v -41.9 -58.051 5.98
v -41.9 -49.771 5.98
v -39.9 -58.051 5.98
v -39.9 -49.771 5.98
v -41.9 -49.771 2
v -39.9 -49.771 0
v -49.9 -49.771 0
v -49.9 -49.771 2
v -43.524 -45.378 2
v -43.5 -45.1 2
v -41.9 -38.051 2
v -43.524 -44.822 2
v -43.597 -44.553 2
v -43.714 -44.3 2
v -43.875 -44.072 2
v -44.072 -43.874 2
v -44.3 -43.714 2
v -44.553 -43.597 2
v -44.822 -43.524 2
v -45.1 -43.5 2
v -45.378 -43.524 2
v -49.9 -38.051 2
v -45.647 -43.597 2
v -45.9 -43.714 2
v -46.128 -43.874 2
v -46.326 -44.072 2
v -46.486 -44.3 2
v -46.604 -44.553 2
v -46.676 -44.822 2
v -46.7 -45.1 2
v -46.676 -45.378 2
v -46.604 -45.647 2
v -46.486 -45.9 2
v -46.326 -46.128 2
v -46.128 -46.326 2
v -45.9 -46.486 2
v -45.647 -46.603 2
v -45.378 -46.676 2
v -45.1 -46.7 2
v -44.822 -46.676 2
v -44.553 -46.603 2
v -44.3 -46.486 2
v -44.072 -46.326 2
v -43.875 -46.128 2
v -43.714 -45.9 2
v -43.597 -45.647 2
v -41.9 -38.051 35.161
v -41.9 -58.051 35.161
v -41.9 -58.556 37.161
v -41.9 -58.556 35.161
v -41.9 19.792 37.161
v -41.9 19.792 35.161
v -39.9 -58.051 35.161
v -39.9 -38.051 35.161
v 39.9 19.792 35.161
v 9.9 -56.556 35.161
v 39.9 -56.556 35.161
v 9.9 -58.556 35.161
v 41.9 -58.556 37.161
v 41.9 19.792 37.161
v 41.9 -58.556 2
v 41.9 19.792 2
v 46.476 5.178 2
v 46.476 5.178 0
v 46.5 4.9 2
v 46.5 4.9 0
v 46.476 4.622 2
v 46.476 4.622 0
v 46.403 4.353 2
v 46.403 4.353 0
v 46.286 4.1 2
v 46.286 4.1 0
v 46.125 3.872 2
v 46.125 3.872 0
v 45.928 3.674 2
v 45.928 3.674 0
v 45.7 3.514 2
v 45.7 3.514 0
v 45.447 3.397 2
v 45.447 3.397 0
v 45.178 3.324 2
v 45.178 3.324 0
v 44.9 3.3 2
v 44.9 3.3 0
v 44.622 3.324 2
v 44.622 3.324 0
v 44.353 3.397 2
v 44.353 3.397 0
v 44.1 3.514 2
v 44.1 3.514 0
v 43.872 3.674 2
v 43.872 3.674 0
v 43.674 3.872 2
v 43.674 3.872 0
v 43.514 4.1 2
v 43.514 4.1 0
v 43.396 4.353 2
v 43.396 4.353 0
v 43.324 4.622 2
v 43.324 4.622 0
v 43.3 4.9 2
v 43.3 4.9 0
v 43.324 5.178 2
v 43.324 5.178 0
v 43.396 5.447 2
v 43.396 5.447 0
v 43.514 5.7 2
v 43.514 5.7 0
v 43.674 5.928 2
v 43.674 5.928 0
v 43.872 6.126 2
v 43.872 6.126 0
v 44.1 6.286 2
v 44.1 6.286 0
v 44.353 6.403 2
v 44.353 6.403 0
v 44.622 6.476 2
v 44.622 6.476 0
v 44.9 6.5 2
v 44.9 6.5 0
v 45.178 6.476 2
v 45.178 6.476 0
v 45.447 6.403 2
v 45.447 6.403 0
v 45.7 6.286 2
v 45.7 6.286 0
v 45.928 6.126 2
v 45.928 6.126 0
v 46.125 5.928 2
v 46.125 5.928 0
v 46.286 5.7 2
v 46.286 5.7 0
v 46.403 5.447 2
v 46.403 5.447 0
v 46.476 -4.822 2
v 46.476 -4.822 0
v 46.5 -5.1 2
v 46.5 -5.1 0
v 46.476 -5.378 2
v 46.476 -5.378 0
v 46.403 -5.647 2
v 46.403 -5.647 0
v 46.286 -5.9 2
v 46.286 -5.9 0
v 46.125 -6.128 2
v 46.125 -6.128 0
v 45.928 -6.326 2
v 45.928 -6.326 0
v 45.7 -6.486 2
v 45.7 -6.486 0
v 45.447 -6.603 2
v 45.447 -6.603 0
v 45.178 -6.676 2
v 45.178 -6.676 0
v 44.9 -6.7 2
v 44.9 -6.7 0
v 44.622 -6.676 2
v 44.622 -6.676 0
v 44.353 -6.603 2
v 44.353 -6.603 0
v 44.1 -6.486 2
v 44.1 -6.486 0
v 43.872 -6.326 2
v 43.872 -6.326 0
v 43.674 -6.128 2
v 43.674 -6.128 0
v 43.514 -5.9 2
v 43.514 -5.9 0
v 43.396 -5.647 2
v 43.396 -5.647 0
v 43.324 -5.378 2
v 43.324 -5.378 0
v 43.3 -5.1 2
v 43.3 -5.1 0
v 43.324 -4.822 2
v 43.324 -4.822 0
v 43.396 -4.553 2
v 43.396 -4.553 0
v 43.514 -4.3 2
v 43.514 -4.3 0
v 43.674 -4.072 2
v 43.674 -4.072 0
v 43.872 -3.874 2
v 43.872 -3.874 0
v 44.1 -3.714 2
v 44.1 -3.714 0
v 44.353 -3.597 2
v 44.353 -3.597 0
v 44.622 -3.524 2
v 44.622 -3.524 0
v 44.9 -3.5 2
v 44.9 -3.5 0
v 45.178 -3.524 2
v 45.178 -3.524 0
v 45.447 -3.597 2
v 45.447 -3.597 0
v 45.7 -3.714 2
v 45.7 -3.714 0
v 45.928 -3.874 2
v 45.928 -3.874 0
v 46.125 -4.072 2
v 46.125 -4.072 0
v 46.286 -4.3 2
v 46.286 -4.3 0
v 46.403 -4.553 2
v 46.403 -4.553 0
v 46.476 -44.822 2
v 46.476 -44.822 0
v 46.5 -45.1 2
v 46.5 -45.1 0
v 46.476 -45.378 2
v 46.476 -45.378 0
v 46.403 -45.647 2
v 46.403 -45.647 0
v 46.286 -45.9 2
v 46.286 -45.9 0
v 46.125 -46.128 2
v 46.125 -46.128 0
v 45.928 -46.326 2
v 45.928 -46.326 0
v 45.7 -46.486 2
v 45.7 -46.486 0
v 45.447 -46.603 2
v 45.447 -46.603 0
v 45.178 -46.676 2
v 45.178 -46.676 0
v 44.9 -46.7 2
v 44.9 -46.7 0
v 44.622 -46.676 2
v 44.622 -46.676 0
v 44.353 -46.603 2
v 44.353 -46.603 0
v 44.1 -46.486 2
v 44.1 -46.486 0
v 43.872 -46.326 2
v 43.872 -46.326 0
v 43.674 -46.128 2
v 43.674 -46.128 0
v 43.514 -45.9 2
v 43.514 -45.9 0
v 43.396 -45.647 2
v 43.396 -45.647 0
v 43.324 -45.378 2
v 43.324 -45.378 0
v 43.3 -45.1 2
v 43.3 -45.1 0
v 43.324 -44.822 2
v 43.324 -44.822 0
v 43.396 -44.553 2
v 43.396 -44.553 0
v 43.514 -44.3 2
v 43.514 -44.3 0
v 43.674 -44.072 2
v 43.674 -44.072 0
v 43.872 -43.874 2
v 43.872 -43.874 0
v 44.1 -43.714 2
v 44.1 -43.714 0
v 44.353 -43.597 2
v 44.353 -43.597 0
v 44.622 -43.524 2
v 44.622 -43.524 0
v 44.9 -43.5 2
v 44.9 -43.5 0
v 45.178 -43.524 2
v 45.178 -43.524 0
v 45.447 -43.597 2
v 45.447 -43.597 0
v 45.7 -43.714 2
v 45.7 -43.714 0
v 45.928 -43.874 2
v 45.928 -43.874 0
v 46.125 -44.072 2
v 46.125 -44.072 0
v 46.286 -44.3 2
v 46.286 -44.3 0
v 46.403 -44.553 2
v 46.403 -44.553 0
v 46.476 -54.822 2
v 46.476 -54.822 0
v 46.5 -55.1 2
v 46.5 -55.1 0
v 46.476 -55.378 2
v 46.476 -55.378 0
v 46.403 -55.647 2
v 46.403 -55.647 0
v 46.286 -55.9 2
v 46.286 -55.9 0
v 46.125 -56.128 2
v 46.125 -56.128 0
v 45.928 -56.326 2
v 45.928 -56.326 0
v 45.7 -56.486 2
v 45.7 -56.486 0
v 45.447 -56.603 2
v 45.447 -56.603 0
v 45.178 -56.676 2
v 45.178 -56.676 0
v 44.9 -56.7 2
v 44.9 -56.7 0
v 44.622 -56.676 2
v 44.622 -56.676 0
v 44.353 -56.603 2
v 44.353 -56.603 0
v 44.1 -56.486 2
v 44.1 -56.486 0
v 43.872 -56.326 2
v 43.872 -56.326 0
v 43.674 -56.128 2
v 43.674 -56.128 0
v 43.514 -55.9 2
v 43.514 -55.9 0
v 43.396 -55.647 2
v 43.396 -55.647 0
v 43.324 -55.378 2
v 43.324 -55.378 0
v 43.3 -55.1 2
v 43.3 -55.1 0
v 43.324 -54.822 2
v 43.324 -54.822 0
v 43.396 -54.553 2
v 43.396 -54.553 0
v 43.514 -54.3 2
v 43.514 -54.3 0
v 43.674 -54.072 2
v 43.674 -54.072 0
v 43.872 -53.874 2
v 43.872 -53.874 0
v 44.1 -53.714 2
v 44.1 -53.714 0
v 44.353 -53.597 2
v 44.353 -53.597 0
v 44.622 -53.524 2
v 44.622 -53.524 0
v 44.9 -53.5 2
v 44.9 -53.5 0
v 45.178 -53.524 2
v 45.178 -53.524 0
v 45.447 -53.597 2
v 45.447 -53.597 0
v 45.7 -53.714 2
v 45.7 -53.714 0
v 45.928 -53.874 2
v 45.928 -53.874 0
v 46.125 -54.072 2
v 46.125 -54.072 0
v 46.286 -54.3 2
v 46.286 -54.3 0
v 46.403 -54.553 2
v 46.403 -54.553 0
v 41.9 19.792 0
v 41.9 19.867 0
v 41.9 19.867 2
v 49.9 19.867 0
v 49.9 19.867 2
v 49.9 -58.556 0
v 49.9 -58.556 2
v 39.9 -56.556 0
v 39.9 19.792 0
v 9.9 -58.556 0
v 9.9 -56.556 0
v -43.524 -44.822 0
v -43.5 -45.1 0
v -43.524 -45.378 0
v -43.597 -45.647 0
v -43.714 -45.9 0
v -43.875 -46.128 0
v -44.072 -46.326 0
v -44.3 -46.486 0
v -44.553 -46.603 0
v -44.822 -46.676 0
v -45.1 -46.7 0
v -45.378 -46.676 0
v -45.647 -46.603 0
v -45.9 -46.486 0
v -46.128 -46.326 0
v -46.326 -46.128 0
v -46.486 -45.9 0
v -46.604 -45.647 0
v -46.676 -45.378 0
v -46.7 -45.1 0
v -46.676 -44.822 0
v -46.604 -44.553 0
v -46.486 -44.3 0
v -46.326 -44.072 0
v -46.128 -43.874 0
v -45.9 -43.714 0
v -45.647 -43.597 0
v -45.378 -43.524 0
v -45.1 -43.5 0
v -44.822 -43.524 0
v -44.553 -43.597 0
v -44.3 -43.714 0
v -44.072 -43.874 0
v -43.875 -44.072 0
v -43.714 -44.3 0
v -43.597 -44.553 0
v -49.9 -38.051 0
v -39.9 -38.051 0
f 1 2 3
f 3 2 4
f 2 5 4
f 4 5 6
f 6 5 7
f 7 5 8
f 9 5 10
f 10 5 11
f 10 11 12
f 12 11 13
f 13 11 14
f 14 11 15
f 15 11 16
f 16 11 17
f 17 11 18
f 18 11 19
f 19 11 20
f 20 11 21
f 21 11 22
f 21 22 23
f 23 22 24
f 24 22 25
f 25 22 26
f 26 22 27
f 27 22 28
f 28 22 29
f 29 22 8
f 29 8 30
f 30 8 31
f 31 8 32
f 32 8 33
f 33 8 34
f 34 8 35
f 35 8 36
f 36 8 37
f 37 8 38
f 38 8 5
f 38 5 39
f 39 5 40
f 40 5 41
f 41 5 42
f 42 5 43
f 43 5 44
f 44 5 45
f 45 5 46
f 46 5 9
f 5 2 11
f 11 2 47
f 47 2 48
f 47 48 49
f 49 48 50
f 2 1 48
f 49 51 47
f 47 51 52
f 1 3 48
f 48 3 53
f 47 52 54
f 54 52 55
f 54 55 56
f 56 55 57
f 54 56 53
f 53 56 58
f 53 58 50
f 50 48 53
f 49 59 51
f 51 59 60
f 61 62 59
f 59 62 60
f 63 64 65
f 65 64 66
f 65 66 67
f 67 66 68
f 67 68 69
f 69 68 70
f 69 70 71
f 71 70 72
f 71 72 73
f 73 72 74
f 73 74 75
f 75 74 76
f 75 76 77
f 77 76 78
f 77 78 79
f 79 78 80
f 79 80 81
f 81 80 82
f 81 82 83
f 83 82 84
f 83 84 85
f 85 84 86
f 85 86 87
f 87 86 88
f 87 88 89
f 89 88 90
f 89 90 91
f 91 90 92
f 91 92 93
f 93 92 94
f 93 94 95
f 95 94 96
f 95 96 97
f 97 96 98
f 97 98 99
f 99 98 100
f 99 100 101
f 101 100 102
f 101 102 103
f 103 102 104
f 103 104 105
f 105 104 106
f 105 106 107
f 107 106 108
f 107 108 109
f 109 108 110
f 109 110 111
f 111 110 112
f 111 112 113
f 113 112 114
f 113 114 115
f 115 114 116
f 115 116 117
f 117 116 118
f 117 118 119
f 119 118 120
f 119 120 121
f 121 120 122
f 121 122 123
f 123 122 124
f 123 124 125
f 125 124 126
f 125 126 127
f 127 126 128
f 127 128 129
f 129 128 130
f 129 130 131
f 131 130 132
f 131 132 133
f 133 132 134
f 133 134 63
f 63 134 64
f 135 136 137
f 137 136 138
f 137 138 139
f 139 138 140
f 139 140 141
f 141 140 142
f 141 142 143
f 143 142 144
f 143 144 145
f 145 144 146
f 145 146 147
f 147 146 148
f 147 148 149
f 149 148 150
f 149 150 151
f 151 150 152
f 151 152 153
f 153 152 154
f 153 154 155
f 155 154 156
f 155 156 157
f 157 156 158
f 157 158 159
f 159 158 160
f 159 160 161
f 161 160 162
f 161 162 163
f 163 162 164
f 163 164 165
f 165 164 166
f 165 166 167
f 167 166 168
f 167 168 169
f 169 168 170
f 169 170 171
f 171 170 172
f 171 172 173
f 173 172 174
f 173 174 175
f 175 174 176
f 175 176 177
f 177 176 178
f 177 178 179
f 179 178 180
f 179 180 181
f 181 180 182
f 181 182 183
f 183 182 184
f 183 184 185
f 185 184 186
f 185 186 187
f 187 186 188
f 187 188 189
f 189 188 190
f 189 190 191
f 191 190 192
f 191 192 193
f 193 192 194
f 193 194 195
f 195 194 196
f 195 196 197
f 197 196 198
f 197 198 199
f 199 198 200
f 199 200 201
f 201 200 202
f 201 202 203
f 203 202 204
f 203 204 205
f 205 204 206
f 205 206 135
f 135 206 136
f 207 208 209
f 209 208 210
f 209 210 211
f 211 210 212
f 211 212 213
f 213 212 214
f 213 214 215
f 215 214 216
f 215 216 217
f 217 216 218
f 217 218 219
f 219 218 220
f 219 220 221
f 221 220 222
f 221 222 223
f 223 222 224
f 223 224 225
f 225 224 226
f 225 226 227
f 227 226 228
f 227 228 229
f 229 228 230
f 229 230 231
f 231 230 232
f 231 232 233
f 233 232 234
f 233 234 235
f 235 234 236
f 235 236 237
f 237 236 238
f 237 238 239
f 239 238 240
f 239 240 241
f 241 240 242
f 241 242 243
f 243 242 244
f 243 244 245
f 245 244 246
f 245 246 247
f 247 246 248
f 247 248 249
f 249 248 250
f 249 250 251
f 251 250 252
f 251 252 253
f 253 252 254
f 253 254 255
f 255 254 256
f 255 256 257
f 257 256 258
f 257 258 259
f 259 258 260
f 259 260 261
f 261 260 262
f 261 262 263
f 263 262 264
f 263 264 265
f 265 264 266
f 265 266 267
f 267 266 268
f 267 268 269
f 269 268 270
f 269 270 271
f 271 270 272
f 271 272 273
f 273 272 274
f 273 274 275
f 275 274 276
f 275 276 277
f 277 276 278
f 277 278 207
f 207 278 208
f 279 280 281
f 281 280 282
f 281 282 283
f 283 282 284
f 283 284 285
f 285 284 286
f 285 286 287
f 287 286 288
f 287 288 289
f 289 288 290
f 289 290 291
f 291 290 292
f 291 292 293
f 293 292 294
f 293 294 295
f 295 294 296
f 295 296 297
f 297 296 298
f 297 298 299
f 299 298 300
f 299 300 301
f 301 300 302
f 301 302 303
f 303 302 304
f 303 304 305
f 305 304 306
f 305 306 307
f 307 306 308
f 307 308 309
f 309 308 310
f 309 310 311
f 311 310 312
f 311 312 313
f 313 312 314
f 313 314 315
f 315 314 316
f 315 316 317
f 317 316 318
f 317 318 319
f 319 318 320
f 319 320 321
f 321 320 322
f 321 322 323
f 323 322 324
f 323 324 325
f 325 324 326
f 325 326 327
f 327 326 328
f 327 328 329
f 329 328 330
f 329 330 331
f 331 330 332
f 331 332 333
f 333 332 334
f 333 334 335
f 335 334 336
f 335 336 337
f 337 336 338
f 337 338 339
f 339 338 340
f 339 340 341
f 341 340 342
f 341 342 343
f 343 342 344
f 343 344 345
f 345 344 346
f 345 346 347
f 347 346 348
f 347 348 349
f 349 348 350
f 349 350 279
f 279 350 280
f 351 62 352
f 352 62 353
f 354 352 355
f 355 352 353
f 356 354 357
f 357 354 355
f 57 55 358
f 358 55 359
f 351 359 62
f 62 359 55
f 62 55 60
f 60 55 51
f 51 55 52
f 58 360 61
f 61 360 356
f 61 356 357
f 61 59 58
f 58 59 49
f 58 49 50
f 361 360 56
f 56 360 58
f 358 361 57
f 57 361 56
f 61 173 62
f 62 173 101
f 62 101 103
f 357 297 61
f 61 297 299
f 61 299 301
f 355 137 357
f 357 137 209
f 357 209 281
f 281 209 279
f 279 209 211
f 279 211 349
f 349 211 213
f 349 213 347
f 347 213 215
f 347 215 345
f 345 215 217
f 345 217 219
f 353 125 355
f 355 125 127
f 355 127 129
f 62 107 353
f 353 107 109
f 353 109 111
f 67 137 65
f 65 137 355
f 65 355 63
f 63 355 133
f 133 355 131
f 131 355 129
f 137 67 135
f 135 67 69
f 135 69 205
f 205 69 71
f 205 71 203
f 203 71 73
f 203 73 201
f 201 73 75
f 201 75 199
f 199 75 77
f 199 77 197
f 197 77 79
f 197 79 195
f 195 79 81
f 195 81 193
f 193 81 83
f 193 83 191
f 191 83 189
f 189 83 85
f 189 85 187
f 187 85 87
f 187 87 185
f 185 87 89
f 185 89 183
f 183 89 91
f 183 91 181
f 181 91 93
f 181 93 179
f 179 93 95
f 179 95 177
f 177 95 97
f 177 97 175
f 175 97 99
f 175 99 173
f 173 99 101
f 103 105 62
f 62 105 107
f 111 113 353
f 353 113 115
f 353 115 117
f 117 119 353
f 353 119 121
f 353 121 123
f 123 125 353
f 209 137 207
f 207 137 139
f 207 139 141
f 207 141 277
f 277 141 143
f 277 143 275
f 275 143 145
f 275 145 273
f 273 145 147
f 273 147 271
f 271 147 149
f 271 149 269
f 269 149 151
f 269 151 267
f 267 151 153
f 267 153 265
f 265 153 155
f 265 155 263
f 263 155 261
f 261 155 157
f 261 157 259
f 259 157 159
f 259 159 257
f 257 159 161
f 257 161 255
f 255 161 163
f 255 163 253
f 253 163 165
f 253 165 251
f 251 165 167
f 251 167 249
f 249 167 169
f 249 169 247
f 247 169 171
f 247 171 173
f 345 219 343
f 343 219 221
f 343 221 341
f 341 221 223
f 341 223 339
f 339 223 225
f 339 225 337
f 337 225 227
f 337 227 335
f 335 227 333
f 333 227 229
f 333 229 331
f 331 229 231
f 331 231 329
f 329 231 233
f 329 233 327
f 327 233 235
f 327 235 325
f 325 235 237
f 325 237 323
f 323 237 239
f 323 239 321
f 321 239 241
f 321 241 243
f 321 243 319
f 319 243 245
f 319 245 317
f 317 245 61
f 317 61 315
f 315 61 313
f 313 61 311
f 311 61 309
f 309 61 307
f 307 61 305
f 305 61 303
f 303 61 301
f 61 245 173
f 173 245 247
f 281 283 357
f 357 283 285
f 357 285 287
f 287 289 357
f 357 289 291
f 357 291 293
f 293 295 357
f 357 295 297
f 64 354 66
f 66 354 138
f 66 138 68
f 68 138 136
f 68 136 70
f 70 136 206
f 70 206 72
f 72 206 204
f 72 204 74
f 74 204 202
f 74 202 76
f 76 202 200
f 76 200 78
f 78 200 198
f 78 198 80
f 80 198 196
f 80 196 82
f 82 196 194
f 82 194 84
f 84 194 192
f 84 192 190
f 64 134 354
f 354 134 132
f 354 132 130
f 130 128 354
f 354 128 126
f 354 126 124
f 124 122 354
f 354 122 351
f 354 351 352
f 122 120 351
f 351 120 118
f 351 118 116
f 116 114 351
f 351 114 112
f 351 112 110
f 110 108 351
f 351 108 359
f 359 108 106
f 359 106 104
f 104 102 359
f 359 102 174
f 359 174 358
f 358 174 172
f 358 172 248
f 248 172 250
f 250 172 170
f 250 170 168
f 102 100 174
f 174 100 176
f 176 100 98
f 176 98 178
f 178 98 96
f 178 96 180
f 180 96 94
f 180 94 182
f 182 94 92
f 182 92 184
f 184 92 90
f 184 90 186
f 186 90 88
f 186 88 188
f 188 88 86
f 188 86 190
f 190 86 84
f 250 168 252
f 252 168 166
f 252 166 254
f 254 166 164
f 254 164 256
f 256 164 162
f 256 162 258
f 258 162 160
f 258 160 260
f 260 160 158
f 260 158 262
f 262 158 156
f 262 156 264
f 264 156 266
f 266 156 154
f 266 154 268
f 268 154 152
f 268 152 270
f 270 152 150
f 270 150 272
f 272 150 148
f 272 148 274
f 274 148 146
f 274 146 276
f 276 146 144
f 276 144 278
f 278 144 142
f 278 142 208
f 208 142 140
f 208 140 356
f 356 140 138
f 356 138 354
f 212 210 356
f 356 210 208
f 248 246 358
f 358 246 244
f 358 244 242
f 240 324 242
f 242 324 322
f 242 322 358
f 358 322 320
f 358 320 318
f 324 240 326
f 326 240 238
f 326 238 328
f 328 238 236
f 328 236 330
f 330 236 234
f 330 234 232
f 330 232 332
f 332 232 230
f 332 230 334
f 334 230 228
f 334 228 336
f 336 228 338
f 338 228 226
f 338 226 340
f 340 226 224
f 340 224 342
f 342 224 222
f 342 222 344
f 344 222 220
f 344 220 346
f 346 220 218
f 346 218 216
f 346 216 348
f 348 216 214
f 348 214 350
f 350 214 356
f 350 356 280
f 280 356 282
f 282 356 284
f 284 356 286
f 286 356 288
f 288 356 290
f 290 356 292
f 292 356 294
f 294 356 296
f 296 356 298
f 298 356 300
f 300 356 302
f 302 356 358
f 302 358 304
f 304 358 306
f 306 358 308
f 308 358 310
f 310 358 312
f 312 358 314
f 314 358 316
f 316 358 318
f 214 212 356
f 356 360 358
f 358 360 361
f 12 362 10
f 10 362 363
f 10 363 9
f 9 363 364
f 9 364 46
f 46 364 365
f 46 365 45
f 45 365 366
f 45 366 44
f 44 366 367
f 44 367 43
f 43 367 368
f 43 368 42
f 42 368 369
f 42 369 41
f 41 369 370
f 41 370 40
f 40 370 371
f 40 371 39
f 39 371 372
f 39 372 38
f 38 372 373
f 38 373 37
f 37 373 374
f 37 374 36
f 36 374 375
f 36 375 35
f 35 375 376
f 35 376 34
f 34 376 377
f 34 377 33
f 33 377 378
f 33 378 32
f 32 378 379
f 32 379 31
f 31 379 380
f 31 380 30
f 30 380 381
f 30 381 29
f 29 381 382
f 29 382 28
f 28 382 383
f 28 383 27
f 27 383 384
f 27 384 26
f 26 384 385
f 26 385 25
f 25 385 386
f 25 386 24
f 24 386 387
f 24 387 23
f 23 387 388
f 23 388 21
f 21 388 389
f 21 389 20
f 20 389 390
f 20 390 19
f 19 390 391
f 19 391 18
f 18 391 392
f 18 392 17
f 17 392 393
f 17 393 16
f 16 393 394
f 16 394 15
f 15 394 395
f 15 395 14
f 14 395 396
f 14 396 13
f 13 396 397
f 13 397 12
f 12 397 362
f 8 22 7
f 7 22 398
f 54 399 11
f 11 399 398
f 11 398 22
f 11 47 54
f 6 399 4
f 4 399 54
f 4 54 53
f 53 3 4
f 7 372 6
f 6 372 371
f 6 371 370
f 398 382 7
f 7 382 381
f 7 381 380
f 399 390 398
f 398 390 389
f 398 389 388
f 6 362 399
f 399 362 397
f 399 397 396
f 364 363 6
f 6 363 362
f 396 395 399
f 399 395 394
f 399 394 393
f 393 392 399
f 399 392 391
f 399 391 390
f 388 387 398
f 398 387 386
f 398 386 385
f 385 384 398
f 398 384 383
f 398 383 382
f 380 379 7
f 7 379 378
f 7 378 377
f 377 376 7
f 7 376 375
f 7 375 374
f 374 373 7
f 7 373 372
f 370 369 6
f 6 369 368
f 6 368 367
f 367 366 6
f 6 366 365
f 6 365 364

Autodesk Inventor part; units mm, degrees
ref_plane "YZ Plane" through (0, 0, 0) normal (1, 0, 0) x (0, 1, 0)
ref_plane "XZ Plane" through (0, 0, 0) normal (0, 1, 0) x (-1, 0, 0)
ref_plane "Work Plane1" through (0, 0, 0) normal (0, 0, 1) x (1, 0, 0)
ref_plane "Work Plane2" through (0, 0, 0) normal (0, 0, 1) x (1, 0, 0)
sketch "Sketch2" plane through (0, 0, 0) normal (0, 0, 1) x (1, 0, 0)
  circle A0 centre (44.9, -55.1) radius 1.6 construction
  circle A1 centre (44.9, -45.1) radius 1.6 construction
  line L0 (49.9, -97.9) -> (49.9, 41.0746) construction
  line L1 (-49.9, -35.1) -> (-49.9, -97.9) construction
  circle A2 centre (-45.1, -45.1) radius 1.6 construction
  circle A3 centre (-45.1, -55.1) radius 1.4 construction
  line L2 (-2.8791, -35.1) -> (-48.921, -35.1) construction
  circle A4 centre (44.9, -5.1) radius 1.6 construction
  circle A5 centre (44.9, 4.9) radius 1.6 construction
  line L3 (49.9, -58.5557) -> (41.9, -58.5557) construction
  line L4 (41.9, -58.5557) -> (41.9, 19.8666) construction
  line L5 (41.9, 19.8666) -> (49.9, 19.8666) construction
  line L6 (49.9, 19.8666) -> (49.9, -58.5557) construction
  line L7 (41.9, -58.5557) -> (49.9, -58.5557)
  line L8 (49.9, -58.5557) -> (49.9, 19.8666)
  line L9 (49.9, 19.8666) -> (41.9, 19.8666)
  line L10 (41.9, 19.8666) -> (41.9, -58.5557)
  line L11 (41.9, 19.8666) -> (49.9, 36.639)
  line L12 (49.9, 19.8666) -> (49.9, 36.639)
  line L13 (60.4304, 64.9211) -> (17.3793, -25.3374) projected
  line L14 (-49.9, -58.0504) -> (-41.9, -58.0504)
  line L15 (-41.9, -58.0504) -> (-41.9, -38.0504)
  line L16 (-41.9, -38.0504) -> (-49.9, -38.0504)
  line L17 (-49.9, -38.0504) -> (-49.9, -58.0504)
  line L18 (-41.9, -58.0504) -> (-39.9, -58.0504)
  line L19 (-39.9, -58.0504) -> (-39.9, -38.0504)
  line L20 (-39.9, -38.0504) -> (-41.9, -38.0504)
  line L21 (-41.9, -38.0504) -> (-41.9, -58.0504)
  line L22 (41.9, -58.5557) -> (39.9, -58.5557)
  line L23 (39.9, -58.5557) -> (39.9, 19.7918)
  line L24 (39.9, 19.7918) -> (41.9, 19.7918)
  line L25 (41.9, 19.7918) -> (41.9, -58.5557)
  circle A6 centre (-45.1, -55.1) radius 1.4
  circle A7 centre (-45.1, -45.1) radius 1.6
  circle A8 centre (44.9, -55.1) radius 1.6
  circle A9 centre (44.9, -45.1) radius 1.6
  circle A10 centre (44.9, -5.1) radius 1.6
  circle A11 centre (44.9, 4.9) radius 1.6
  line L26 (39.9, -58.5557) -> (9.9, -58.5557)
  line L27 (9.9, -58.5557) -> (9.9, -56.5557)
  line L28 (9.9, -56.5557) -> (39.9, -56.5557)
  line L29 (39.9, -56.5557) -> (39.9, -58.5557)
  point P0 (0, 0)
  dimension "d0" = 8
  dimension "d1" = 8
  dimension "d2" = 20
  dimension "d3" = 2
  dimension "d4" = 2
  dimension "d7" = 30
  dimension "d8" = 2
extrude "Extrusion1" add sketch "Sketch2" along normal blind 2 contours L10 L9 L8 L7 | L22 L23 L24 L10 | L26 L27 L28 L23 | L17 L16 L15 L14 | L15 L20 L19 L18
sketch "Sketch3" plane through (0, 0, 2) normal (0, 0, 1) x (1, 0, 0)
  line L0 (39.9, 19.7918) -> (39.9, -56.5557) projected
  circle A0 centre (44.9, 4.9) radius 1.6 projected
  circle A1 centre (44.9, -5.1) radius 1.6 projected
  circle A2 centre (44.9, -45.1) radius 1.6 projected
  circle A3 centre (44.9, -55.1) radius 1.6 projected
  line L1 (39.9, -56.5557) -> (9.9, -56.5557) projected
  line L2 (9.9, -56.5557) -> (9.9, -58.5557) projected
  line L3 (9.9, -58.5557) -> (49.9, -58.5557) projected
  line L4 (49.9, -58.5557) -> (49.9, 19.8666) projected
  line L5 (49.9, 19.8666) -> (41.9, 19.8666) projected
  line L6 (41.9, 19.8666) -> (41.9, 19.7918) projected
  line L7 (41.9, 19.7918) -> (39.9, 19.7918) projected
  line L8 (39.9, 19.7918) -> (39.9, -56.5557) projected
  line L9 (39.9, 19.7918) -> (39.9, -56.5557) projected
  line L10 (9.9, -58.5557) -> (49.9, -58.5557) projected
  line L11 (39.9, 19.7918) -> (41.9, 19.7918)
  line L12 (41.9, 19.7918) -> (41.9, -58.5557)
  line L13 (41.9, -58.5557) -> (39.9, -58.5557)
  line L14 (39.9, -58.5557) -> (39.9, 19.7918)
  line L15 (39.9, -56.5557) -> (9.9, -56.5557) projected
  line L16 (9.9, -58.5557) -> (39.9, -58.5557)
  line L17 (39.9, -58.5557) -> (39.9, -56.5557)
  line L18 (39.9, -56.5557) -> (9.9, -56.5557)
  line L19 (9.9, -56.5557) -> (9.9, -58.5557)
  line L20 (-39.9, -58.0504) -> (-39.9, -38.0504) projected
  line L21 (-49.9, -58.0504) -> (-39.9, -58.0504) projected
  line L22 (-39.9, -38.0504) -> (-41.9, -38.0504)
  line L23 (-41.9, -38.0504) -> (-41.9, -58.0504)
  line L24 (-41.9, -58.0504) -> (-39.9, -58.0504)
  line L25 (-39.9, -58.0504) -> (-39.9, -38.0504)
  point P0 (0, 0)
  dimension "d9" = 2
ref_plane "Work Plane3" through (-48.921, -35.1, 35.161) normal (0, 0, 1) x (1, 0, 0)
extrude "Extrusion2" add sketch "Sketch3" along normal up to surface (33.161 mm away) contours L7 L12 L3 L14 L0 | L14 L3 L2 L1 | L21 L23 L22 L20
sketch "Sketch5" plane through (9.9, -58.5557, 35.161) normal (0, 0, 1) x (1, 0, 0)
  line L0 (0, 0) -> (0, 2) projected
  line L1 (32, 0) -> (0, 0) projected
  line L2 (32, 78.3475) -> (32, 0) projected
  line L3 (30, 78.3475) -> (32, 78.3475) projected
  line L4 (30, 2) -> (30, 78.3475) projected
  line L5 (0, 2) -> (30, 2) projected
  line L6 (-49.8, 20.5053) -> (-49.8, 0.5053) projected
  line L7 (-51.8, 20.5053) -> (-49.8, 20.5053) projected
  line L8 (-51.8, 0.5053) -> (-51.8, 20.5053) projected
  line L9 (-49.8, 0.5053) -> (-51.8, 0.5053) projected
  line L10 (32, 78.3475) -> (-51.8, 78.3475)
  line L11 (-51.8, 78.3475) -> (-51.8, 0.5053)
  line L12 (-51.8, 0.5053) -> (32, 0.5053)
  line L13 (32, 0.5053) -> (32, 78.3475)
  line L14 (32, 78.3475) -> (32, 0) projected
  line L15 (32, 0) -> (-51.8, 0)
  line L16 (-51.8, 0) -> (-51.8, 0.5053)
  line L17 (-51.8, 0.5053) -> (32, 0.5053)
  line L18 (32, 0.5053) -> (32, 0)
  point P0 (-9.9, 58.5557)
extrude "Extrusion3" add sketch "Sketch5" along normal blind 2
sketch "Sketch6" plane through (-41.9, -58.0504, 2) normal (-1, 0, 0) x (0, 0, 1)
  line L0 (0, 20) -> (33.161, 20) projected
  line L1 (0, 0) -> (0, 20) projected
  line L2 (0, 0) -> (33.161, 0) projected
  line L3 (33.161, 0) -> (33.161, -0.5053) projected
  line L4 (33.161, -0.5053) -> (35.161, -0.5053) projected
  line L5 (35.161, 77.8423) -> (35.161, -0.5053) projected
  line L6 (33.161, 77.8423) -> (35.161, 77.8423) projected
  line L7 (33.161, 77.8423) -> (33.161, 20) projected
  line L8 (-2, 7.7504) -> (-2, -86.2156) projected
  line L9 (-2, -86.2156) -> (3, -86.2156) projected
  line L10 (3, -19.7496) -> (3, -86.2156) projected
  line L11 (3, -19.7496) -> (7.1792, -19.7496) projected
  line L12 (7.1792, -19.7496) -> (7.1792, -14.7496) projected
  line L13 (3, -14.7496) -> (7.1792, -14.7496) projected
  line L14 (3, 7.7504) -> (3, -14.7496) projected
  line L15 (-2, 7.7504) -> (3, 7.7504) projected
  line L16 (-2.5429, 8.2795) -> (3.9802, 8.2795)
  line L17 (3.9802, 8.2795) -> (3.9802, -0.9887)
  line L18 (3.9802, -0.9887) -> (-2.5429, -0.9887)
  line L19 (-2.5429, -0.9887) -> (-2.5429, 8.2795)
  point P0 (-2, 58.0504)
extrude "Extrusion4" cut sketch "Sketch6" along normal mid plane 20 contours L16 L17 L2 L14 L15 L1 | L1 L15 L8 L18 L19 L16 | L15 L14 L2 L1 | L1 L2 L14 L18 L8 L15 | L17 L18 L14 L2
properties part number "30_CUBE_openSIM_Lasershield"
